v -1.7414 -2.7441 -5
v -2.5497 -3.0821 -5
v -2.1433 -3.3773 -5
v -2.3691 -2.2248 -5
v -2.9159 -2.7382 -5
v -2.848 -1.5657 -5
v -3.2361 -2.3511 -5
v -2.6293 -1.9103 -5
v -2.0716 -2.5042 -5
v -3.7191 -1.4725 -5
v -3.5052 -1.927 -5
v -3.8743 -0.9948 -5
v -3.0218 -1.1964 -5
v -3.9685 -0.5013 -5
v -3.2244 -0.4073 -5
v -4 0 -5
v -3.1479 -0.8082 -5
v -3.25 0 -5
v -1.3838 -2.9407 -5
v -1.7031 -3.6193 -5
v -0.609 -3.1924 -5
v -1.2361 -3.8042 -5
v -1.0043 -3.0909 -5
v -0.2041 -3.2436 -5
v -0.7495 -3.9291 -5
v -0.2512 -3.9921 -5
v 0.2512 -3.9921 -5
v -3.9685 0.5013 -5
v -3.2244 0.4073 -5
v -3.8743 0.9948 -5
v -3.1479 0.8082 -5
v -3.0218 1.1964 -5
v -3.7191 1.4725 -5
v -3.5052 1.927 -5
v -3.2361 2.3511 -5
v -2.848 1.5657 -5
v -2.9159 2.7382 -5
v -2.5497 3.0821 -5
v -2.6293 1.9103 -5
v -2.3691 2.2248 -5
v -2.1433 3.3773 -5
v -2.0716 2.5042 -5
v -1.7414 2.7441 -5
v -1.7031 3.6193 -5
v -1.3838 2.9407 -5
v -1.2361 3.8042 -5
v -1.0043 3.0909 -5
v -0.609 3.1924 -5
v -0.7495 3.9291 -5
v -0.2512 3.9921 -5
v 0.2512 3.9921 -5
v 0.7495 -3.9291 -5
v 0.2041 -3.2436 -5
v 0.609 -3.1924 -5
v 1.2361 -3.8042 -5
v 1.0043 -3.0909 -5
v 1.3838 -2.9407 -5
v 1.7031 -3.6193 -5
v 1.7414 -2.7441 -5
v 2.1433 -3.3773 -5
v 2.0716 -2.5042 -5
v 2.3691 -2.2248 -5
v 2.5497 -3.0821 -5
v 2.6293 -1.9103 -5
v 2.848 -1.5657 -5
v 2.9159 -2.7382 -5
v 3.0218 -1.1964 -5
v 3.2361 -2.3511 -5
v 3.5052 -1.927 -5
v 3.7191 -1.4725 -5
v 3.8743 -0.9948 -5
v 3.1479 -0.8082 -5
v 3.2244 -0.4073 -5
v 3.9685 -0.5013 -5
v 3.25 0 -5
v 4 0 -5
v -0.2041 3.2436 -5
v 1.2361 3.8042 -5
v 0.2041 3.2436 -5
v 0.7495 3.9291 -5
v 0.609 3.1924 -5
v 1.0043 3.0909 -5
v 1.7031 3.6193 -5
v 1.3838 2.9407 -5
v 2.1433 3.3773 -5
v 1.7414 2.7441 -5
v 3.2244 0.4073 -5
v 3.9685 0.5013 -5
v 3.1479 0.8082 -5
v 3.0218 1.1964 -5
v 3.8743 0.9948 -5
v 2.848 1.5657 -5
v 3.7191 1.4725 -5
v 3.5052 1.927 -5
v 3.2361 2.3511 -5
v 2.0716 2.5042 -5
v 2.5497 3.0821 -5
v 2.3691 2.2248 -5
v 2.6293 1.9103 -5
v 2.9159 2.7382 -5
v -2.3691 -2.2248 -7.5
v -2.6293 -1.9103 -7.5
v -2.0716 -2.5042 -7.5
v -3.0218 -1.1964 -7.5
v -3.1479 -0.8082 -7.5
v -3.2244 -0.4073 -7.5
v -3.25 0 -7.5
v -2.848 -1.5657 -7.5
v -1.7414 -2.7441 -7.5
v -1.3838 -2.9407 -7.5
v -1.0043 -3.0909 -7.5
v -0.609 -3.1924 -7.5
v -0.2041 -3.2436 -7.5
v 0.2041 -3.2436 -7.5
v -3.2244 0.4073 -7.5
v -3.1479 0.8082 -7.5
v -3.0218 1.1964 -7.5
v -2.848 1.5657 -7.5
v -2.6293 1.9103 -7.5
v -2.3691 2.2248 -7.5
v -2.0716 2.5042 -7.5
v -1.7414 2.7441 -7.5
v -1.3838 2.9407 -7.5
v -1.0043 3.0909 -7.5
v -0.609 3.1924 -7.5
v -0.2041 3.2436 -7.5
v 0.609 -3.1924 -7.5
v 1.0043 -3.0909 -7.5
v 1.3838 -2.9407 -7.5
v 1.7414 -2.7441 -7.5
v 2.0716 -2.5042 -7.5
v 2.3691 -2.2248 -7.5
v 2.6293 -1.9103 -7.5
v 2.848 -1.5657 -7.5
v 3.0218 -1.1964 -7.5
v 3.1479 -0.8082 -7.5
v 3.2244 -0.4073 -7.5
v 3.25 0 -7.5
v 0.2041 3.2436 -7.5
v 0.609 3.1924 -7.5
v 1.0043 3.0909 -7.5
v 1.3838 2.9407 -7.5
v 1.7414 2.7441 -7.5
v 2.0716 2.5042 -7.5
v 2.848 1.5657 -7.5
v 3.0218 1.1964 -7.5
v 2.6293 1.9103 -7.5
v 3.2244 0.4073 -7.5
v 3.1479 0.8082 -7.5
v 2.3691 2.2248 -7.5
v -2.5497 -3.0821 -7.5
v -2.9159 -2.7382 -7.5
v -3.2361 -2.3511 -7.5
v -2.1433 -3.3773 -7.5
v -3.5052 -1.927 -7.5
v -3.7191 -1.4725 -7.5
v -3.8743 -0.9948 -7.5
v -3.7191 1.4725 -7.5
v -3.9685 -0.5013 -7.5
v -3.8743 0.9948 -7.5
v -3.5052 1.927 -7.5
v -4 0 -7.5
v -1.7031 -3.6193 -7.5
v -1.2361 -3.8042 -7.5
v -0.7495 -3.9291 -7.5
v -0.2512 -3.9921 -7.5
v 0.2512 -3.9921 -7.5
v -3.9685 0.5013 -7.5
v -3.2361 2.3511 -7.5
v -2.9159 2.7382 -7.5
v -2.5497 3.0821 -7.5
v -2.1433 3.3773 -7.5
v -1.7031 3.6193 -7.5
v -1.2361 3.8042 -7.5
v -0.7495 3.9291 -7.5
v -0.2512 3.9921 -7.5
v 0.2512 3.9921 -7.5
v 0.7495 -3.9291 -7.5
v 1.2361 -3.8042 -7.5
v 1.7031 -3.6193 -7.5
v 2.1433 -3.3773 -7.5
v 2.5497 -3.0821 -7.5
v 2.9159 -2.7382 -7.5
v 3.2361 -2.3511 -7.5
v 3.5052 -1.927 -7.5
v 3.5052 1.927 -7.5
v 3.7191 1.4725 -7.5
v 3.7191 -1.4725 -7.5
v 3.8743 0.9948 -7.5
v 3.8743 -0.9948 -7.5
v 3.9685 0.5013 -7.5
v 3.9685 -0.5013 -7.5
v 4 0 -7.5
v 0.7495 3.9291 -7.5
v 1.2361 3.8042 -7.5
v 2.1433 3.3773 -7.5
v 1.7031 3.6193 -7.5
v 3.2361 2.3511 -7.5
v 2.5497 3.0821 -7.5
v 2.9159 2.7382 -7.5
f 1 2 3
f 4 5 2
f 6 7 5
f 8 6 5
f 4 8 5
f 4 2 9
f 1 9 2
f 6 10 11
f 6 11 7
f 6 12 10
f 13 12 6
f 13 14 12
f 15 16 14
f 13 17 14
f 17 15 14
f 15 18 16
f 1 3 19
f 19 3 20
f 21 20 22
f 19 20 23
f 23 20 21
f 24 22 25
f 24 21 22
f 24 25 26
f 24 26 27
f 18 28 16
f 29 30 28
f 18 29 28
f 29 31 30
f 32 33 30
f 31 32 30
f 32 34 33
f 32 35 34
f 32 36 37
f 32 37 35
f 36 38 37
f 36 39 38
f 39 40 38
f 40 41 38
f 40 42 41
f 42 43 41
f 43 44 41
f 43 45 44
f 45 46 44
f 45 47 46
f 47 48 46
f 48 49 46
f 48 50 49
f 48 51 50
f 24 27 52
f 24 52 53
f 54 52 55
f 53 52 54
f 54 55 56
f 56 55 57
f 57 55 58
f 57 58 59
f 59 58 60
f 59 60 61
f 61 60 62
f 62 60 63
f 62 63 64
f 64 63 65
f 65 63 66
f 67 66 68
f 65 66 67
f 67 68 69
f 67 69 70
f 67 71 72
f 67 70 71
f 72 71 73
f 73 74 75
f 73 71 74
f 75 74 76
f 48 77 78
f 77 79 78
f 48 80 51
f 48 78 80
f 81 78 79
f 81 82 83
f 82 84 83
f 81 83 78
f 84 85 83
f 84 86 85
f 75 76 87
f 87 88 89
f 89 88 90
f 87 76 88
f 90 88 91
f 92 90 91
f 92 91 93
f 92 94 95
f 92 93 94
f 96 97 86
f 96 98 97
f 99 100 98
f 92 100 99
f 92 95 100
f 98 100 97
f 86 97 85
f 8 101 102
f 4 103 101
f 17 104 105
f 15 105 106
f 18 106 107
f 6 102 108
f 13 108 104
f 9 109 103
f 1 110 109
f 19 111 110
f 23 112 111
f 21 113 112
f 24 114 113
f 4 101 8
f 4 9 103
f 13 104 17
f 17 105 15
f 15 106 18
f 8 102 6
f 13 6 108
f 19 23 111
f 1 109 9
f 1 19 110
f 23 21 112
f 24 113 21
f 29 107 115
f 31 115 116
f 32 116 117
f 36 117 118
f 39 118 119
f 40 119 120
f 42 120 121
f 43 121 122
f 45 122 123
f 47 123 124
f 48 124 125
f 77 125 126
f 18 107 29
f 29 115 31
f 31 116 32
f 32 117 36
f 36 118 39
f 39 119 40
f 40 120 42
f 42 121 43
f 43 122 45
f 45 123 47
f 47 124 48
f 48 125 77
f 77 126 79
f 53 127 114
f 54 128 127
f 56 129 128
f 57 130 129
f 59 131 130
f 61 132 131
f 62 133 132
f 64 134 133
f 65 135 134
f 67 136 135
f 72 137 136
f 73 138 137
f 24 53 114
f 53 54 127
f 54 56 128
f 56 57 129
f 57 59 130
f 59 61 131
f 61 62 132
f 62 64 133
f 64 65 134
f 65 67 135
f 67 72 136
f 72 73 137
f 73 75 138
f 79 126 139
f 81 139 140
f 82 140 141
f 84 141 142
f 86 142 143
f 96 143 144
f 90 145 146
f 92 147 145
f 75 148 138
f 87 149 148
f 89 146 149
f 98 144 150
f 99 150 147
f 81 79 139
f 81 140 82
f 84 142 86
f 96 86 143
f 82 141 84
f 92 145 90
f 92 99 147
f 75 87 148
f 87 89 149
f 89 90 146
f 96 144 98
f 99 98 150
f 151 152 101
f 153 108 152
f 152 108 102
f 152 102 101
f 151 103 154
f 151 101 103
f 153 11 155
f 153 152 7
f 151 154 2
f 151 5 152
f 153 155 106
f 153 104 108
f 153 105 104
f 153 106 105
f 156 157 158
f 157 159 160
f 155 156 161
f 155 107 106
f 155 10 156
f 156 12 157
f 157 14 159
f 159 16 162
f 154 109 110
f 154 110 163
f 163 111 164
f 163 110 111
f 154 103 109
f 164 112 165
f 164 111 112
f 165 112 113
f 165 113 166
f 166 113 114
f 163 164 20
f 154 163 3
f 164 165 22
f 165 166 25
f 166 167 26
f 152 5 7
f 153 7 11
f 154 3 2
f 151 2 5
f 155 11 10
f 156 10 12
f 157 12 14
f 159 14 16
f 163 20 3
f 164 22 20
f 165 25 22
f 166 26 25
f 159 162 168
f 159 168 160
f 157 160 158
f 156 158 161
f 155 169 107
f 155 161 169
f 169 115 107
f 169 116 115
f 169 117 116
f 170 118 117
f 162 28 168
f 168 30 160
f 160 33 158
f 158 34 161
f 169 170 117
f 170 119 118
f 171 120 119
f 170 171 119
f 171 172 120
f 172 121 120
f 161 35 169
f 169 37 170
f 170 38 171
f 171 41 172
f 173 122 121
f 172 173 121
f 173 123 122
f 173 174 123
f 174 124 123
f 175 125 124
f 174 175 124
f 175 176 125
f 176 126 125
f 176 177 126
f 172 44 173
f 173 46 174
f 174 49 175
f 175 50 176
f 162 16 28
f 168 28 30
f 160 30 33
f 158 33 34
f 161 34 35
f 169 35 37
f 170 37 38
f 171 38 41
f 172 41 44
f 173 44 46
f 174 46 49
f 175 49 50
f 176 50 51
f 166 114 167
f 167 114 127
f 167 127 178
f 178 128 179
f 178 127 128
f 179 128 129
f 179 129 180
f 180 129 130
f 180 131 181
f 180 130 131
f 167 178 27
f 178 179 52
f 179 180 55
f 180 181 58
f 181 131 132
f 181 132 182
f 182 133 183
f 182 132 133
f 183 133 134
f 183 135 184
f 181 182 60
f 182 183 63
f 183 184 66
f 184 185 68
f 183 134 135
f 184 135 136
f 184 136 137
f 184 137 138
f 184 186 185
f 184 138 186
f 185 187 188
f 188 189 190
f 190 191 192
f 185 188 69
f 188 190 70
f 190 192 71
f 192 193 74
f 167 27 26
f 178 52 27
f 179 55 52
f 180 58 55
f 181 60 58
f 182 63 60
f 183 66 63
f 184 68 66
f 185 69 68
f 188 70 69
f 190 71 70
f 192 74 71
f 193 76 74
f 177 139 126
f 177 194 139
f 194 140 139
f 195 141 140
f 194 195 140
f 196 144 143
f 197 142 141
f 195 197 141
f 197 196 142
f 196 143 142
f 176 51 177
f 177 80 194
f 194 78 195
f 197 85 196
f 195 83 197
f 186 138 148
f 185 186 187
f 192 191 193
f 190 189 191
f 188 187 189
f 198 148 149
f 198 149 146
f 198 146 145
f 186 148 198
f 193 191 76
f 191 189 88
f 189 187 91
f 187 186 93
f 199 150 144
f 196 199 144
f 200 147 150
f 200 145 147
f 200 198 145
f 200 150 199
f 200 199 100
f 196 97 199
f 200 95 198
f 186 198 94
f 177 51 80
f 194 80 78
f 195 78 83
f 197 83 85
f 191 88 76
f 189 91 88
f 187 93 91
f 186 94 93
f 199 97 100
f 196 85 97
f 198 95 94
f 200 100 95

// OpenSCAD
$fn = 50;

difference() {
	union() {
		translate(v = [0, 0, -7.5]) {
			cylinder(h = 7.5, r = 4.0);
		}
	}
	union() {
		translate(v = [0, 0, 0]) {
			rotate(a = [0, 0, 0]) {
				difference() {
					union() {
						translate(v = [0, 0, -5]) {
							linear_extrude(height = 5) {
								polygon(points = [[5.914249999999999, 0.0], [2.957125, 5.1218907443321156], [-2.9571249999999982, 5.1218907443321156], [-5.914249999999999, 7.242867331857232e-16], [-2.9571250000000022, -5.121890744332115], [2.9571249999999956, -5.121890744332118]]);
							}
						}
					}
					union();
				}
			}
		}
		#translate(v = [0, 0, -100.0]) {
			cylinder(h = 200, r = 3.25);
		}
	}
}
